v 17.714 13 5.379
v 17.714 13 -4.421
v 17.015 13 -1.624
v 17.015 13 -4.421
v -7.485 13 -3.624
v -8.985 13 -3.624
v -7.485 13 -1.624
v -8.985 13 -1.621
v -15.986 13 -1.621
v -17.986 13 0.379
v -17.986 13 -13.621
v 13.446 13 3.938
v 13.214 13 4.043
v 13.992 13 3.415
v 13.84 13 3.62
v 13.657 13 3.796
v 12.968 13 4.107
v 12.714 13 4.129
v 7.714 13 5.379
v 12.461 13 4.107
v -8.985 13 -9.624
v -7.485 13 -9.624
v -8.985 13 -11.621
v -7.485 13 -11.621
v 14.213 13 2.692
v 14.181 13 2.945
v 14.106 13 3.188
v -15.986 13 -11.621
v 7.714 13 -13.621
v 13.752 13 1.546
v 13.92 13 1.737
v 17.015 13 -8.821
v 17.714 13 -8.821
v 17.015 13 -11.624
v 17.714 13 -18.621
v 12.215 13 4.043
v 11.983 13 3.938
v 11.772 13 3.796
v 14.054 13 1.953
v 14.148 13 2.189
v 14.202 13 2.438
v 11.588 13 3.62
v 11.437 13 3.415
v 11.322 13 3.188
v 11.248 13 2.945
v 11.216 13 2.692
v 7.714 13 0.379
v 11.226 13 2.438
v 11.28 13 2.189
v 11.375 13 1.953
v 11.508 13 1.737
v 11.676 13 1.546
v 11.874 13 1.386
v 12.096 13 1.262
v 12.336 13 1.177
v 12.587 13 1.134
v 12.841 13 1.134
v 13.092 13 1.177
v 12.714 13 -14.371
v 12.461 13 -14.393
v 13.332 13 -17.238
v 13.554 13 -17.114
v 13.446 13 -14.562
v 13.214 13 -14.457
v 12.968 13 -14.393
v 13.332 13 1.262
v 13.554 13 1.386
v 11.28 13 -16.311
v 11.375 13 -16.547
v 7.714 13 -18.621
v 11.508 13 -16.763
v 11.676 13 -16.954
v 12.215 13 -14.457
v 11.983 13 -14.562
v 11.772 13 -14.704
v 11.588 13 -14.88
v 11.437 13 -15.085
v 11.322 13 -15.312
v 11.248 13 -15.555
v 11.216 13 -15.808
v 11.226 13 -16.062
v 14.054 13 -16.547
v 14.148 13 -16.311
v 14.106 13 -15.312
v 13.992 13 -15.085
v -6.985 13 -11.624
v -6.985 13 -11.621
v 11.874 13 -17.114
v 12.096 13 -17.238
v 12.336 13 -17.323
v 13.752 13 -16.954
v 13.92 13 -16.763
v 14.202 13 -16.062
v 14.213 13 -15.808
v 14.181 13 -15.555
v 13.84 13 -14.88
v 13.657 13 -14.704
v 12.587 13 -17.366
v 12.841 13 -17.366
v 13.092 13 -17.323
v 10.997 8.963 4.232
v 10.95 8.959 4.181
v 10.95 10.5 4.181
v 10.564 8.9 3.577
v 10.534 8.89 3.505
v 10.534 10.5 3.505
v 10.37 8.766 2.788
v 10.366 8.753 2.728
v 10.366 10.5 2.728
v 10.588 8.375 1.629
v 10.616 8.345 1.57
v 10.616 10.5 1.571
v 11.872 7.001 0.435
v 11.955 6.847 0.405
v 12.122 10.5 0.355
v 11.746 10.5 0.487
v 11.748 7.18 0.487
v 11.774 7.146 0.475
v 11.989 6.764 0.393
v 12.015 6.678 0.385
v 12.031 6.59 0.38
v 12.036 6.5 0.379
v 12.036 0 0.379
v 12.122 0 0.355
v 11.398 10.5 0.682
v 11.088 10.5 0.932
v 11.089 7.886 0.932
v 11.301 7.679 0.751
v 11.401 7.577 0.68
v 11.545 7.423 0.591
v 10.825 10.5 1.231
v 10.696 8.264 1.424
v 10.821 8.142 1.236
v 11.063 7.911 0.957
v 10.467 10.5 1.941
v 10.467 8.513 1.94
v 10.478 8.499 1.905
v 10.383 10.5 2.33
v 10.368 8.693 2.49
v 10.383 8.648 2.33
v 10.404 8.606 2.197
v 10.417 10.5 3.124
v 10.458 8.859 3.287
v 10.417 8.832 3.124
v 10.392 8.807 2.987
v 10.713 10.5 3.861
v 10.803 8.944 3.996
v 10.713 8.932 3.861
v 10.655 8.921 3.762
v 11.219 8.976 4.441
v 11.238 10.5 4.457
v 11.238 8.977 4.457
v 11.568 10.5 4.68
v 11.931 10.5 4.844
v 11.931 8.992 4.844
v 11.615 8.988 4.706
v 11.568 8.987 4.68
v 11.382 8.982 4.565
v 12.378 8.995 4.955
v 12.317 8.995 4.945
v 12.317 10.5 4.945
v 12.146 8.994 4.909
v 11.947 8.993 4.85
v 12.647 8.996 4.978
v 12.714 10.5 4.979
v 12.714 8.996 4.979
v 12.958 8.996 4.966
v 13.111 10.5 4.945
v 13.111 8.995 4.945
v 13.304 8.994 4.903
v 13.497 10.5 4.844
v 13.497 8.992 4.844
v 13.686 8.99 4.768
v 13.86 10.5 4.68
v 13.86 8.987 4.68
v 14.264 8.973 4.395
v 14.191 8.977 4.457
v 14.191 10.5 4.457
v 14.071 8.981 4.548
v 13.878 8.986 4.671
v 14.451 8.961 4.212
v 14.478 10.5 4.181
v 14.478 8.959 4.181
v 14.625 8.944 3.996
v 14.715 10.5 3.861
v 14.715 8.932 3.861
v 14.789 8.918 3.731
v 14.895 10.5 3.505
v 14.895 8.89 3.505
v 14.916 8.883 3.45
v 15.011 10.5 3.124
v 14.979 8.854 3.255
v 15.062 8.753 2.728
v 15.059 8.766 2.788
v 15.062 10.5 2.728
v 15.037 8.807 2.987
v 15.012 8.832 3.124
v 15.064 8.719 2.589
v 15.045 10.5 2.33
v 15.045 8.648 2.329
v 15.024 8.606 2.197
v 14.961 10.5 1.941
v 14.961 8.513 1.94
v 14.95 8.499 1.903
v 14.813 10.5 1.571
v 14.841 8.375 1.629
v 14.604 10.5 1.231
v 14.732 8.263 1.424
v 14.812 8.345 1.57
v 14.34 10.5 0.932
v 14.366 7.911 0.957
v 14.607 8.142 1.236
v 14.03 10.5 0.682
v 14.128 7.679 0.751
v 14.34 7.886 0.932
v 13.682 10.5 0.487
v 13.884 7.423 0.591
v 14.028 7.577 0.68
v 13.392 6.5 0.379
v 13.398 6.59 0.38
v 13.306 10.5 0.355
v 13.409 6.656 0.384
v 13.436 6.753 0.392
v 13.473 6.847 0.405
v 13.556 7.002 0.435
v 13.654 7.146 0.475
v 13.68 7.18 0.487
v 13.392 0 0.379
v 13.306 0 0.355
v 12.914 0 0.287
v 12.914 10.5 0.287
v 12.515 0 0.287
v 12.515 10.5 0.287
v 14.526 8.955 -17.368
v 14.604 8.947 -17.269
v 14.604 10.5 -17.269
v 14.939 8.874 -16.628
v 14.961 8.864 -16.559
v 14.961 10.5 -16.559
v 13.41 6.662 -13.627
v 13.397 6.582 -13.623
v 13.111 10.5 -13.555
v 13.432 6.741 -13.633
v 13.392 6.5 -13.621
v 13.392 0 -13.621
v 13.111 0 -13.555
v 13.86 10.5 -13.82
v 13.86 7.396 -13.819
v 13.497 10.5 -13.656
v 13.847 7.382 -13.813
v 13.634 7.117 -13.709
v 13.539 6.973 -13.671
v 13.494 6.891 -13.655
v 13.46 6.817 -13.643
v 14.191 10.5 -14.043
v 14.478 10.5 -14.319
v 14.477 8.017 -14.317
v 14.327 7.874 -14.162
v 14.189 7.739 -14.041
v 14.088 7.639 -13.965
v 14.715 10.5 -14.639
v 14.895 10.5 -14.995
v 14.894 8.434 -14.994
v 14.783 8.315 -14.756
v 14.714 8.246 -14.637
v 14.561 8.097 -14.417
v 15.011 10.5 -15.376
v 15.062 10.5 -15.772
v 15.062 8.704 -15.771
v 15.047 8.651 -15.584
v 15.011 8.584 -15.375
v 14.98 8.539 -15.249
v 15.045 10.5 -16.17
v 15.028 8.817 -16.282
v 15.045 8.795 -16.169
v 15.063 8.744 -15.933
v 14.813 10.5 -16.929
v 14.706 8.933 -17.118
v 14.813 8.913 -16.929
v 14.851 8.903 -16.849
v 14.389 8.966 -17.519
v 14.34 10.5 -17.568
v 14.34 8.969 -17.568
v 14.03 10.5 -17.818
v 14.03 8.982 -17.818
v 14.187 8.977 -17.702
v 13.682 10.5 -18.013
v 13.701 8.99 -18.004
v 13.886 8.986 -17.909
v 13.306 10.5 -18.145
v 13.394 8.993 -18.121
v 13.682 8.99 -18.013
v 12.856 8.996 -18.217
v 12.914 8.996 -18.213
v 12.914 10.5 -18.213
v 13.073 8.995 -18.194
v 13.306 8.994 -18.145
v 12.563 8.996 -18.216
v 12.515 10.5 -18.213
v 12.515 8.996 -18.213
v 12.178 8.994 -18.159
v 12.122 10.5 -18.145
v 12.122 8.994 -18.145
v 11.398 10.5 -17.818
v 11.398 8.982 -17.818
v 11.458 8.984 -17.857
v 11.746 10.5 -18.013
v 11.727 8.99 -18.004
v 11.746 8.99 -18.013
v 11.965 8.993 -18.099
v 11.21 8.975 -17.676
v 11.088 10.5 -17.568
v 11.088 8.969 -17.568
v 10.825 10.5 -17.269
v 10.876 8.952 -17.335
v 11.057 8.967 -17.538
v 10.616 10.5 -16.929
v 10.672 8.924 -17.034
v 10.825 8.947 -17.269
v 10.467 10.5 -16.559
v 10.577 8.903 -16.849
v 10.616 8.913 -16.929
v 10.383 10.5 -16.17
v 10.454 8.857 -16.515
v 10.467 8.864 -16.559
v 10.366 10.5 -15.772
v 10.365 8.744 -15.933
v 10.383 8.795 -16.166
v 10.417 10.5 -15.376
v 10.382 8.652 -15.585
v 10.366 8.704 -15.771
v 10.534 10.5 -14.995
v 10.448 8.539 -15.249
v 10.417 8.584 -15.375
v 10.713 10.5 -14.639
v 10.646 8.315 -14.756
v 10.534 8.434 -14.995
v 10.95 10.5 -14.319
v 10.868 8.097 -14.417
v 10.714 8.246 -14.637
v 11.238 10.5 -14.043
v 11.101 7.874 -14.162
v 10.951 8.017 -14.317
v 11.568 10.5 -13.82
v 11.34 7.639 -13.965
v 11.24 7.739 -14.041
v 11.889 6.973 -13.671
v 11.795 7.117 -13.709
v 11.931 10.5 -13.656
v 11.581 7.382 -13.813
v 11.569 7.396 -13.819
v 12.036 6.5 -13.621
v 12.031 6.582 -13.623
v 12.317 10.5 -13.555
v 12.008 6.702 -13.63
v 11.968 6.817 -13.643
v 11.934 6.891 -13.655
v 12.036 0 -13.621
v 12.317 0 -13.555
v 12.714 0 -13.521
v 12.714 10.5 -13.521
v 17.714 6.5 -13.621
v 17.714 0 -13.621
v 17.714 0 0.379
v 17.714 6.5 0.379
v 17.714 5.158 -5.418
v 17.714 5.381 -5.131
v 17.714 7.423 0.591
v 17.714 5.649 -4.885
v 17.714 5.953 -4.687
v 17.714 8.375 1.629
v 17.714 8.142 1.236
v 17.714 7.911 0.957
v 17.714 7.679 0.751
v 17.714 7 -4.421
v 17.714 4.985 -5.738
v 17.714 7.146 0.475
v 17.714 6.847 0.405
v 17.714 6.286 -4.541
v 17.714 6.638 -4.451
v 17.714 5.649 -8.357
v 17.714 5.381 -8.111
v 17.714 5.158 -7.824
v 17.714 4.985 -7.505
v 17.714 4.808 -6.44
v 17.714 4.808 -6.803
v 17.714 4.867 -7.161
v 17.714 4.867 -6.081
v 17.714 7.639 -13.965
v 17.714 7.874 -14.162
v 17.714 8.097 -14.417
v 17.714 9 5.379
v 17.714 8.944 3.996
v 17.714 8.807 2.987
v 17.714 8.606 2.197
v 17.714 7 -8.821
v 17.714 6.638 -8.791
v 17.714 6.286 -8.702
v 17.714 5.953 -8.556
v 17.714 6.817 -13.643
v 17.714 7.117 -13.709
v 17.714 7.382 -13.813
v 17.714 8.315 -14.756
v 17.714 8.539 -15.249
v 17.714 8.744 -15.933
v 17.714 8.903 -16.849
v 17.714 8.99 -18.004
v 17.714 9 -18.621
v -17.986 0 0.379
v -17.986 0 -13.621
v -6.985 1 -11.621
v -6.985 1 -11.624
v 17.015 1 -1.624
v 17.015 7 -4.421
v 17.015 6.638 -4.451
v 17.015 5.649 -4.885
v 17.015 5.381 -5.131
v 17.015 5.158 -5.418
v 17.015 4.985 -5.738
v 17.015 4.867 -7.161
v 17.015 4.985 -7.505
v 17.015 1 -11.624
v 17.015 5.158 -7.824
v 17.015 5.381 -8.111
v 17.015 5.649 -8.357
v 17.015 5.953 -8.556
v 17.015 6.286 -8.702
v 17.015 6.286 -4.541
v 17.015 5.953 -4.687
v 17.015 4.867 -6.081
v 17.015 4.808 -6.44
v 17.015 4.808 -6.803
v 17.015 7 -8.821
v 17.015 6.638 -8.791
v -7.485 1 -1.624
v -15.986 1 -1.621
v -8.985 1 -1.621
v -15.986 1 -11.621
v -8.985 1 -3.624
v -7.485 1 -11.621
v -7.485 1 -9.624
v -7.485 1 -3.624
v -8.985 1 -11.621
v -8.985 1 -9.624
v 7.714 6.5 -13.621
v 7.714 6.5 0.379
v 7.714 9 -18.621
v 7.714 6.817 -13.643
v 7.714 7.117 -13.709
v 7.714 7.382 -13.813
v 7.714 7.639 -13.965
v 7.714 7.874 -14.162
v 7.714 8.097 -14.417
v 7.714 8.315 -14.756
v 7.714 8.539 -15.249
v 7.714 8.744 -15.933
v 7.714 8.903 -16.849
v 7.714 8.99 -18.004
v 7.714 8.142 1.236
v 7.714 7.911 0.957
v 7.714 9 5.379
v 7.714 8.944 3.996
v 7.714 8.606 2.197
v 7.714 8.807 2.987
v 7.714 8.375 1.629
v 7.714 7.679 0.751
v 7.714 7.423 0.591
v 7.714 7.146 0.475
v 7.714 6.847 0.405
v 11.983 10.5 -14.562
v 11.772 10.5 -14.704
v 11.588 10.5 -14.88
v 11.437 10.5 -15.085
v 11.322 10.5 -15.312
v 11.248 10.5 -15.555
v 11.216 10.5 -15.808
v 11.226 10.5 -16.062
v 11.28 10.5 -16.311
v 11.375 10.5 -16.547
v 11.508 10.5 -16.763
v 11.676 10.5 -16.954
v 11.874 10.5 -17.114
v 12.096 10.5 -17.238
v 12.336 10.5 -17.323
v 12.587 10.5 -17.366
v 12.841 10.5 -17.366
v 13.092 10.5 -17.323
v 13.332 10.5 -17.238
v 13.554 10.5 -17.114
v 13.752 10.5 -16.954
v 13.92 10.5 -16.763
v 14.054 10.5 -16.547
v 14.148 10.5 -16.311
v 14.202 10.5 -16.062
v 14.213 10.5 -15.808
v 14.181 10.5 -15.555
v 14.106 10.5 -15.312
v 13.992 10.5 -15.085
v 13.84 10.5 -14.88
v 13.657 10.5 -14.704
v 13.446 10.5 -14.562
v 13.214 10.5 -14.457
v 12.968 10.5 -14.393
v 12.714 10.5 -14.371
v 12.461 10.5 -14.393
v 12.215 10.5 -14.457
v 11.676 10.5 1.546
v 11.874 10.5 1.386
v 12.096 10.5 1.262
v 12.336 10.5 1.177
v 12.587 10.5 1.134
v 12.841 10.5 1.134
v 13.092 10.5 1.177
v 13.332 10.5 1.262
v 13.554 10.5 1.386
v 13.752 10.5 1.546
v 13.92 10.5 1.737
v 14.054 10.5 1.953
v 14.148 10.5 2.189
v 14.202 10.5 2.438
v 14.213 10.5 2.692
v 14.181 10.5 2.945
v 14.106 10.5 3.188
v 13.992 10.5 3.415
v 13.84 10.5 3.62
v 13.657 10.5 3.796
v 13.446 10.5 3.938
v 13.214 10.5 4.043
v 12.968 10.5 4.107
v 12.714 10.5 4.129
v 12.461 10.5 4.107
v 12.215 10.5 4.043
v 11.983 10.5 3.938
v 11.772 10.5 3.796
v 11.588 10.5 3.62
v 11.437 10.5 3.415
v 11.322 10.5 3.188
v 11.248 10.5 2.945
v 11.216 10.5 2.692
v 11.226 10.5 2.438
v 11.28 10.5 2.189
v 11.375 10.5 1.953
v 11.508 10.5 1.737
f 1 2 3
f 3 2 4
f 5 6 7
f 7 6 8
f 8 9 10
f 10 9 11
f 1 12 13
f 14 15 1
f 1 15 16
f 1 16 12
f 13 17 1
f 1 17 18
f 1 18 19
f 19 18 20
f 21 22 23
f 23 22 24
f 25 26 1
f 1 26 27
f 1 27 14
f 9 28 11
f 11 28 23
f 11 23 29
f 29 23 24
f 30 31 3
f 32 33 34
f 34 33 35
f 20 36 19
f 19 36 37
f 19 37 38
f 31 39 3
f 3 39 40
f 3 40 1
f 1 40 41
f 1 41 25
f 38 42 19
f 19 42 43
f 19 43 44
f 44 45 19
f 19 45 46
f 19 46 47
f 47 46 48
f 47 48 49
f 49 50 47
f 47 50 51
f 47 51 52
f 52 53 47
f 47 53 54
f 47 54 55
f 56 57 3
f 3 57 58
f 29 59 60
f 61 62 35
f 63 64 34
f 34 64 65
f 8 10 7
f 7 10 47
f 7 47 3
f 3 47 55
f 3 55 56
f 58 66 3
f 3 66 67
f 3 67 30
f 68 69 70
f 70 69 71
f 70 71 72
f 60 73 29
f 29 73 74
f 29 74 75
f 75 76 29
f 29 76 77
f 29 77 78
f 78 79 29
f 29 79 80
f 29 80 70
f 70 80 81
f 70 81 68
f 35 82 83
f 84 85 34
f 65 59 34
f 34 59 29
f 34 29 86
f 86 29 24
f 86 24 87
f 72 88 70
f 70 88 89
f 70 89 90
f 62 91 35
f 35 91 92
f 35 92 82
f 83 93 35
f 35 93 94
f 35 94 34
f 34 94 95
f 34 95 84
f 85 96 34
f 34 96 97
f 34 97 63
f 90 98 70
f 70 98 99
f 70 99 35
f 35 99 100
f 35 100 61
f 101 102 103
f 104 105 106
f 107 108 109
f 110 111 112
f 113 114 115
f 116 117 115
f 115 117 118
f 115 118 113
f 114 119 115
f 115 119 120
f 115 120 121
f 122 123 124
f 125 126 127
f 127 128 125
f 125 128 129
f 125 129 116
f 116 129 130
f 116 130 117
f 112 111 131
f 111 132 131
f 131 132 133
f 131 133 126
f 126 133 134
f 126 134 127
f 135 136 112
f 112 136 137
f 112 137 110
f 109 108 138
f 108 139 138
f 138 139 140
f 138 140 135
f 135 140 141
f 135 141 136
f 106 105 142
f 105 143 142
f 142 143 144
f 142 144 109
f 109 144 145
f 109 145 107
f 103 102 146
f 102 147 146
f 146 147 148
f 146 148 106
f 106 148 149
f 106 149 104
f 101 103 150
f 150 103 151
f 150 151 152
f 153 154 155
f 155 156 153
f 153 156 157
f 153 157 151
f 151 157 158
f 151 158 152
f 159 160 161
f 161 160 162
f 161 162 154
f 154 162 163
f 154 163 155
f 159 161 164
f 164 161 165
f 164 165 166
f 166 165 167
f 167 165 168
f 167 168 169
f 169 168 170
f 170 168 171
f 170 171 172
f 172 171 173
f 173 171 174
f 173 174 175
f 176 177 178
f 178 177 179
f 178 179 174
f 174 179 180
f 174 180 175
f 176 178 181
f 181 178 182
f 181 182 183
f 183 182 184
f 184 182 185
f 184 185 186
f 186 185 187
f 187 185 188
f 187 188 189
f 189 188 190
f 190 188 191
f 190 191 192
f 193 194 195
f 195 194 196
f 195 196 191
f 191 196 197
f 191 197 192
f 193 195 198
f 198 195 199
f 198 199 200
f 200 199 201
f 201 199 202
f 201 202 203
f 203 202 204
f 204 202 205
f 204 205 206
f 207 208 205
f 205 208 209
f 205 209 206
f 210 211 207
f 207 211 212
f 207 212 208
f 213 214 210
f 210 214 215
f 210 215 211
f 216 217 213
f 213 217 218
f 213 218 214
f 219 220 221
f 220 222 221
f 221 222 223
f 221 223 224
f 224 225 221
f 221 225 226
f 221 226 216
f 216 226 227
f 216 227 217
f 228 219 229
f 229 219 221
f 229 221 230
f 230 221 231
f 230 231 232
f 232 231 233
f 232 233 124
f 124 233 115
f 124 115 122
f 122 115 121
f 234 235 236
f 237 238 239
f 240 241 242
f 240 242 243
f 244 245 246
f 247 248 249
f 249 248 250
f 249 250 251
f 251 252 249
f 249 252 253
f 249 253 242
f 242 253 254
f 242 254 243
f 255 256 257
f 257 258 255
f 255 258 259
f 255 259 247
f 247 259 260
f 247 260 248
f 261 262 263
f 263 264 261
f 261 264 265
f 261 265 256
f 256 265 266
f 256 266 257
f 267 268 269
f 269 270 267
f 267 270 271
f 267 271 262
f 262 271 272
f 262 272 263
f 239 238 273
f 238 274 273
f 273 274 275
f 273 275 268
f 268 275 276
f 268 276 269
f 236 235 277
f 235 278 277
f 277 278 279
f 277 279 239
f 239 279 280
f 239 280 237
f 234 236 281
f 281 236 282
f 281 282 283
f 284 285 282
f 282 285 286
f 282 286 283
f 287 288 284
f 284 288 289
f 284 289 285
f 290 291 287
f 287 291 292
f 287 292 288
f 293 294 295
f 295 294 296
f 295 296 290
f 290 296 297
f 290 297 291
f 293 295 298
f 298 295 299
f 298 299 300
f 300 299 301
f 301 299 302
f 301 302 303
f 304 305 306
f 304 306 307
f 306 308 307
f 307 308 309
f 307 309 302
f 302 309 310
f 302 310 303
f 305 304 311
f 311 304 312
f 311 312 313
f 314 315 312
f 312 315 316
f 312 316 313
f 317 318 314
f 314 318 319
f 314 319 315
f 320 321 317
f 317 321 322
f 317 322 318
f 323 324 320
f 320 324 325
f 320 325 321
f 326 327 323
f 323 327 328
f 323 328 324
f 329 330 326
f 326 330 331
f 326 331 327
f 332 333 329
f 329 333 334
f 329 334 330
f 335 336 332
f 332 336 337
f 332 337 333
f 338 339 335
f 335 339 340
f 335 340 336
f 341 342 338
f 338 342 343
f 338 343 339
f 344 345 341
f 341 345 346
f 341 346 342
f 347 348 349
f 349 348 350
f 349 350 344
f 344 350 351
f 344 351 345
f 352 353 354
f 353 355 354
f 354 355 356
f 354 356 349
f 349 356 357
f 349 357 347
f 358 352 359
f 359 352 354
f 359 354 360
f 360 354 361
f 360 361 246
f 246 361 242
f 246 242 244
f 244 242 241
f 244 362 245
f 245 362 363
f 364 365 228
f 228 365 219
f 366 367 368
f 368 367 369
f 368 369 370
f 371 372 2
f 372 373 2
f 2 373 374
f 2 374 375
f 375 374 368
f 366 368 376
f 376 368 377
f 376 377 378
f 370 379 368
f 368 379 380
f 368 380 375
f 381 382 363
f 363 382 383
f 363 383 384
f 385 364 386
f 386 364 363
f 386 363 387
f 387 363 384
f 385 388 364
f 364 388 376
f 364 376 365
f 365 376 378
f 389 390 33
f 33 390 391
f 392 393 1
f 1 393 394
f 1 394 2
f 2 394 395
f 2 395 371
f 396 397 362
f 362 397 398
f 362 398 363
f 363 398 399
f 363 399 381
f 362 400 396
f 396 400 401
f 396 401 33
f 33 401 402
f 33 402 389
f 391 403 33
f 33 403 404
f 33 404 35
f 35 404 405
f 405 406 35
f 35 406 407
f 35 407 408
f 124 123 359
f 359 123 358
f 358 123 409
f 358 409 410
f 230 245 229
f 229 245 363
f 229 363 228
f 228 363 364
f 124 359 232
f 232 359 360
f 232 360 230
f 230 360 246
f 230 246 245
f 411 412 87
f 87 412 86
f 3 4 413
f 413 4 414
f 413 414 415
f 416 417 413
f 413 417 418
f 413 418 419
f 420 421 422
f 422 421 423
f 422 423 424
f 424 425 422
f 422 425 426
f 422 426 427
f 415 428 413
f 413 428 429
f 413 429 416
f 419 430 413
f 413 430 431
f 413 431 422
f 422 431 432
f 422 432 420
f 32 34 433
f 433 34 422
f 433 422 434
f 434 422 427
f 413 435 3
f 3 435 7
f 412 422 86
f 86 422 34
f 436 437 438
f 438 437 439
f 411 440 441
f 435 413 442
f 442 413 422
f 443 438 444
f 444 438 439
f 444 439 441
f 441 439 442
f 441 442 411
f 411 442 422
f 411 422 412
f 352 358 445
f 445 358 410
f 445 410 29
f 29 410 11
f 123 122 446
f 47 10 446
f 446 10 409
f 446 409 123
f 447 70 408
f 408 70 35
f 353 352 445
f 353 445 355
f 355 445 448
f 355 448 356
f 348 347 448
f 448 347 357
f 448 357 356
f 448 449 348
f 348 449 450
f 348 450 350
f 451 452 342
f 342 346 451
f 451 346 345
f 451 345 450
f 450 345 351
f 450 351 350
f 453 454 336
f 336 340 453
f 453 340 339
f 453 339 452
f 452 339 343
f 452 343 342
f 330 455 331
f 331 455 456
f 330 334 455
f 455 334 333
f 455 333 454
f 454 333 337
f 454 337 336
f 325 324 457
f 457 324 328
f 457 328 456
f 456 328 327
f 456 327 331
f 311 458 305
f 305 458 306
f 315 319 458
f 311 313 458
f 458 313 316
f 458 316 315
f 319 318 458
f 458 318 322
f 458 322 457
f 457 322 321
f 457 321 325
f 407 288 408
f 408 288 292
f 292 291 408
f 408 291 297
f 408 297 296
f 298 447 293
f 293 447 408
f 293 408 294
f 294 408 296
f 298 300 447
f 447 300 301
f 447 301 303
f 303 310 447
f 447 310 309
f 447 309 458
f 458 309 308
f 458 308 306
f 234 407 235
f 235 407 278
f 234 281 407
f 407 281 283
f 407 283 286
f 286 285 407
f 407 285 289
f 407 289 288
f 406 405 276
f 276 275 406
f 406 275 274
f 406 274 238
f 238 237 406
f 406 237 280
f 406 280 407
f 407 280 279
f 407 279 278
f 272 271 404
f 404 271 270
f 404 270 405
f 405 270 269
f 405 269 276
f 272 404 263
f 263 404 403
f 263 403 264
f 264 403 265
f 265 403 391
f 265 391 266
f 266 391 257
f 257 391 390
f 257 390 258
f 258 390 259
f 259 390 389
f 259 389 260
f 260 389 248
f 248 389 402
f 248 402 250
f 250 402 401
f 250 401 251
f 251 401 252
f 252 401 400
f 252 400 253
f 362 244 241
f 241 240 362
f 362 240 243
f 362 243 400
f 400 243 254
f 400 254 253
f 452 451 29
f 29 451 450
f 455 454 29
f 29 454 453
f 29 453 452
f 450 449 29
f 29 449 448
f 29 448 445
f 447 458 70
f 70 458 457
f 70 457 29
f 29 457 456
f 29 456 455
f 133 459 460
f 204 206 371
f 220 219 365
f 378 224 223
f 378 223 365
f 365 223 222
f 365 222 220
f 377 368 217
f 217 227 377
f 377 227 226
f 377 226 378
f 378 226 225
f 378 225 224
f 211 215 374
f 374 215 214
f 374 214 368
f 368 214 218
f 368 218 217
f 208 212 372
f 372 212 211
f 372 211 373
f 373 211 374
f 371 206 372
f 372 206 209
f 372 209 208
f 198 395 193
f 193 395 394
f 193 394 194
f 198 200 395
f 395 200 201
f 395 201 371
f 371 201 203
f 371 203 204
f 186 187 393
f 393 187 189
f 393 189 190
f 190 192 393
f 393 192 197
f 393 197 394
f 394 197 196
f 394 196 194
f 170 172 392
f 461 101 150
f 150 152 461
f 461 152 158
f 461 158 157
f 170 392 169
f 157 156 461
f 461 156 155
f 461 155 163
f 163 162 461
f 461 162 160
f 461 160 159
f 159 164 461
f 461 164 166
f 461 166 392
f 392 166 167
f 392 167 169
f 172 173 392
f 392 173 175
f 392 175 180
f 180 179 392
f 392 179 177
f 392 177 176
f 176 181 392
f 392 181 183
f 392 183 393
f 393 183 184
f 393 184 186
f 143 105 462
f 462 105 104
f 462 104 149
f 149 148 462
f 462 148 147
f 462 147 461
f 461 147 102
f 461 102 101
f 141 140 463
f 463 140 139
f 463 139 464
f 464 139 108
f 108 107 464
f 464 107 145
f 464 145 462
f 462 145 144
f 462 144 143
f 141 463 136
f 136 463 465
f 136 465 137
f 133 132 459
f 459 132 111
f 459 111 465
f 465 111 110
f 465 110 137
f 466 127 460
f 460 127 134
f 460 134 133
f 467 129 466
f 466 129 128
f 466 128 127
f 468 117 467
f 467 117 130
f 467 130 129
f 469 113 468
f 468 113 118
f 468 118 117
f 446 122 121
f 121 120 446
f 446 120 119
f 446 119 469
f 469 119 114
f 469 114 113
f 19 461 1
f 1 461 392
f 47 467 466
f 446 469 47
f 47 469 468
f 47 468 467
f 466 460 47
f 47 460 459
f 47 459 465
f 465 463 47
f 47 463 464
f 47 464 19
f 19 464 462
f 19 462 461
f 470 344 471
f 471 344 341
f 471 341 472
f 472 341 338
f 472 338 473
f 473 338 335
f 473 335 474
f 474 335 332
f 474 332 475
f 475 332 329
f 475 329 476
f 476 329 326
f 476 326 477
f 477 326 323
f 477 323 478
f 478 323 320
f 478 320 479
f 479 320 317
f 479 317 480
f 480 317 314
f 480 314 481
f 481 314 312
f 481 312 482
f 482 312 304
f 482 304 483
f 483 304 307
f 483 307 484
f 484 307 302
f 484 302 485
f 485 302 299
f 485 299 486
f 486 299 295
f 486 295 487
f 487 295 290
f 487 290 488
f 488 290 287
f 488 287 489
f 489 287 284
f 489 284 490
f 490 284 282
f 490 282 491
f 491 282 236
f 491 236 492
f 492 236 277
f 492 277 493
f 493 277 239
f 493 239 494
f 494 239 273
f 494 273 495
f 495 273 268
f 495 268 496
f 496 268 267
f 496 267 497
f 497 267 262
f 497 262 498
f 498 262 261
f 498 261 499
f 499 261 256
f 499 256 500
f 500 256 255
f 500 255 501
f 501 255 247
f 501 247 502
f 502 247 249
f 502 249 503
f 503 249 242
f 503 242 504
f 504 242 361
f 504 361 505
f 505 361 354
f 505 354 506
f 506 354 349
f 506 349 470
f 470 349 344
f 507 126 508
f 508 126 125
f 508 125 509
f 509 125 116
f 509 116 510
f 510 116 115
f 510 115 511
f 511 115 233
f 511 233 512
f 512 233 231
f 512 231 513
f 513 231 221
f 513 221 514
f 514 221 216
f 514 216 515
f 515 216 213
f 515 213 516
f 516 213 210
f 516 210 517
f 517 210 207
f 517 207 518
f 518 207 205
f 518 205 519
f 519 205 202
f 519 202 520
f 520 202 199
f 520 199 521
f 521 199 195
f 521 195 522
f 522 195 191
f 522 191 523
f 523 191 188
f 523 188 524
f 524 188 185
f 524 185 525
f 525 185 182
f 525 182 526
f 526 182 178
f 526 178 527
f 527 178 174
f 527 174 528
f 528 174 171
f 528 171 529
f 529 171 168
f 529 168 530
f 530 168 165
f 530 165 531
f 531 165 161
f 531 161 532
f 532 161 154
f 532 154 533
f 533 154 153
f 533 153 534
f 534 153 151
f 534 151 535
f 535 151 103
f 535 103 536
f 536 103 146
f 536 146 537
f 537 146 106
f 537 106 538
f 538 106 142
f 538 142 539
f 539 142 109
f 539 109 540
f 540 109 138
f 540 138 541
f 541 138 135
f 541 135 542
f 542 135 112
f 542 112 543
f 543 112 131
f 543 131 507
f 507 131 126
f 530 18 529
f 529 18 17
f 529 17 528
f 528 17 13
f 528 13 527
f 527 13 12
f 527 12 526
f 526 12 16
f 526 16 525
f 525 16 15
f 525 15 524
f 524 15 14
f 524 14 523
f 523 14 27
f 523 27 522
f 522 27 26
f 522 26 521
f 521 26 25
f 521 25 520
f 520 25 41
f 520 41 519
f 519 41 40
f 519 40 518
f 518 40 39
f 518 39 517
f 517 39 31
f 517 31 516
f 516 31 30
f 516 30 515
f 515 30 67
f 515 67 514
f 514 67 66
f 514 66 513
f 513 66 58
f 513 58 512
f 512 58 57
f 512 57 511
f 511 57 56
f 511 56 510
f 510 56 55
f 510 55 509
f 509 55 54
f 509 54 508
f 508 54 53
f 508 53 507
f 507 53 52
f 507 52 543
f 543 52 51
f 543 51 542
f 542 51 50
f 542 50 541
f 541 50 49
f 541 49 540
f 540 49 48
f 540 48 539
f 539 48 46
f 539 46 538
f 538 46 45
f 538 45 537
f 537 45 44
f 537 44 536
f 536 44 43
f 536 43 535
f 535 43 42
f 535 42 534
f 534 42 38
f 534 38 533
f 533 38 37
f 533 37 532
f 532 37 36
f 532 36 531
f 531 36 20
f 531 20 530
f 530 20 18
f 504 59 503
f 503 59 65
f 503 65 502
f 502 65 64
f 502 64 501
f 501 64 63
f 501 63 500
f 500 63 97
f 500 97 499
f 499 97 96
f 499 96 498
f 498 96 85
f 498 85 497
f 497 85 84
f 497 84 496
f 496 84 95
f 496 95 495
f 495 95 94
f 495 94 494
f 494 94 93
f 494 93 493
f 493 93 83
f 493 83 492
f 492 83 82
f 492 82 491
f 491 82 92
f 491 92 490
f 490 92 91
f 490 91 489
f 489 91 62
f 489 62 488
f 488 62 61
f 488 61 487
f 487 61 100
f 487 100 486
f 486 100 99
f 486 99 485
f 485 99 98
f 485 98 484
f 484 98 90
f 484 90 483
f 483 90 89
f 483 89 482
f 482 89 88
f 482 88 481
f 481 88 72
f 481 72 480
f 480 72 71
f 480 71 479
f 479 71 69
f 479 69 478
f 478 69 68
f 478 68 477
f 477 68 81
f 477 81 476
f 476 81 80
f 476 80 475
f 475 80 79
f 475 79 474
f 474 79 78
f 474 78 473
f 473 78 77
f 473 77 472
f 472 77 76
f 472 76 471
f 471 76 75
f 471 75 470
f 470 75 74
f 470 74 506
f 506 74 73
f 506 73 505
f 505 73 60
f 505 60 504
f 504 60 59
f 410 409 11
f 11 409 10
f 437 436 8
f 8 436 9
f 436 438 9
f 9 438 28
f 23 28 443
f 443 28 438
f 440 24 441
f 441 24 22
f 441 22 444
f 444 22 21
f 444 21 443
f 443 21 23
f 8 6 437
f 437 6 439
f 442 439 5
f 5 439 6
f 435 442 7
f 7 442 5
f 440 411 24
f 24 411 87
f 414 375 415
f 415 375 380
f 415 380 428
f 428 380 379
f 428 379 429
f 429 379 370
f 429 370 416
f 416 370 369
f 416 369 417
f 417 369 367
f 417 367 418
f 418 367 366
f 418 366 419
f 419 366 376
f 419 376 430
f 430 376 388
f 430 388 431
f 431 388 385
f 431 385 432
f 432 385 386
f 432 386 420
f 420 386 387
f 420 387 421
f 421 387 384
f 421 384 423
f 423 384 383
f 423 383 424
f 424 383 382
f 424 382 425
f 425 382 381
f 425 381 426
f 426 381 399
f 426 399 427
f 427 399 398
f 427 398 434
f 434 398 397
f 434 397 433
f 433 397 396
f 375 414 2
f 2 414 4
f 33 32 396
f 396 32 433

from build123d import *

# Parameters (mm, degrees)
SKETCH1_W            = 25.7
SKETCH1_H            = 16
BOSS_EXTRUDE5_DEPTH  = 13
SKETCH3_W            = 24
SKETCH3_H            = 10
CUT_EXTRUDE1_DEPTH   = 12
SKETCH6_W            = 6
SKETCH6_H            = 12
CUT_EXTRUDE6_DEPTH   = 12
SKETCH12_W           = 25.7
SKETCH12_H           = 13
CUT_EXTRUDE9_DEPTH   = 1
SKETCH13_W           = 25.7
SKETCH13_H           = 13
CUT_EXTRUDE10_DEPTH  = 1
SKETCH14_W           = 25.7
SKETCH14_H           = 0.24
CUT_EXTRUDE11_DEPTH  = 26.979383268
SKETCH15_W           = 25.7
SKETCH15_H           = 0.24
BOSS_EXTRUDE6_DEPTH  = 13
BOSS_EXTRUDE8_DEPTH  = 10
SKETCH19_R           = 2.35
CUT_EXTRUDE12_DEPTH  = 29.801827185
SKETCH20_R           = 2.4
SKETCH20_R_2         = 2.45
BOSS_EXTRUDE9_DEPTH  = 2.5
SKETCH21_R           = 1.5
CUT_EXTRUDE13_DEPTH  = 29.801827185
SKETCH22_W           = 10
SKETCH22_H           = 14
BOSS_EXTRUDE11_DEPTH = 13
SKETCH25_W           = 8
SKETCH25_H           = 10
CUT_EXTRUDE17_DEPTH  = 12
SKETCH26_W           = 1.5
SKETCH26_H           = 2
BOSS_EXTRUDE12_DEPTH = 13
SKETCH27_W           = 0.5
SKETCH27_H           = 1.76
SKETCH27_W_2         = 0.500587584
SKETCH27_H_2         = 2
CUT_EXTRUDE18_DEPTH  = 12
SKETCH28_W           = 1.277363426
SKETCH28_H           = 0.860849325
BOSS_EXTRUDE13_DEPTH = 12
CUT_EXTRUDE20_DEPTH  = 12


with BuildPart() as part:
    # Sketch1 → Boss-Extrude5 (new body)
    with BuildSketch(Plane(origin=(0, 0, 0), x_dir=(1, 0, 0), z_dir=(0, 1, 0))):
        with Locations((4.864219333, 6.861269364)):
            Rectangle(SKETCH1_W, SKETCH1_H)
    extrude(amount=BOSS_EXTRUDE5_DEPTH)

    # Sketch3 → Cut-Extrude1 (cut)
    with BuildSketch(Plane(origin=(0, 13, 0), x_dir=(1, 0, 0), z_dir=(0, 1, 0))):
        with Locations((5.015394501, 6.623768503)):
            Rectangle(SKETCH3_W, SKETCH3_H)
    extrude(amount=-CUT_EXTRUDE1_DEPTH, mode=Mode.SUBTRACT)

    # Sketch6 → Cut-Extrude6 (cut)
    with BuildSketch(Plane.ZY.offset(7.985780667)):
        with Locations((-6.861269364, 7)):
            Rectangle(SKETCH6_W, SKETCH6_H)
    extrude(amount=-CUT_EXTRUDE6_DEPTH, mode=Mode.SUBTRACT)

    # Sketch12 → Cut-Extrude9 (cut)
    with BuildSketch(Plane(origin=(0, 0, -14.861269364), x_dir=(-1, 0, 0), z_dir=(0, 0, -1))):
        with Locations((-4.864219333, 6.5)):
            Rectangle(SKETCH12_W, SKETCH12_H)
    extrude(amount=-CUT_EXTRUDE9_DEPTH, mode=Mode.SUBTRACT)

    # Sketch13 → Cut-Extrude10 (cut)
    with BuildSketch(Plane.XY.offset(1.138730636)):
        with Locations((4.864219333, 6.5)):
            Rectangle(SKETCH13_W, SKETCH13_H)
    extrude(amount=-CUT_EXTRUDE10_DEPTH, mode=Mode.SUBTRACT)

    # Sketch14 → Cut-Extrude11 (cut, through all)
    with BuildSketch(Plane(origin=(0, 13, 0), x_dir=(1, 0, 0), z_dir=(0, 1, 0))):
        with Locations((4.864219333, 13.741269364)):
            Rectangle(SKETCH14_W, SKETCH14_H)
    extrude(amount=-CUT_EXTRUDE11_DEPTH, mode=Mode.SUBTRACT)

    # Sketch15 → Boss-Extrude6 (add)
    with BuildSketch(Plane(origin=(0, 13, 0), x_dir=(1, 0, 0), z_dir=(0, 1, 0))):
        with Locations((4.864219333, -0.258730636)):
            Rectangle(SKETCH15_W, SKETCH15_H)
    extrude(amount=-BOSS_EXTRUDE6_DEPTH)

    # Sketch17 → Boss-Extrude8 (add)
    with BuildSketch(Plane(origin=(17.714219333, 0, 0), x_dir=(0, 0, -1), z_dir=(1, 0, 0))):
        with BuildLine():
            Line((13.621269364, 13), (18.621269364, 13))
            Line((18.621269364, 13), (18.621269364, 9))
            add(Edge.make_bspline(
                [(18.621269364, 9), (13.621269364, 9), (13.621269364, 6.5)],
                knots=[0, 0, 0, 1, 1, 1], degree=2))
            Line((13.621269364, 6.5), (13.621269364, 13))
        make_face()
        with BuildLine():
            Line((-0.378730636, 13), (-5.378730636, 13))
            Line((-5.378730636, 13), (-5.378730636, 9))
            add(Edge.make_bspline(
                [(-5.378730636, 9), (-0.378730636, 9), (-0.378730636, 6.5)],
                knots=[0, 0, 0, 1, 1, 1], degree=2))
            Line((-0.378730636, 6.5), (-0.378730636, 13))
        make_face()
    extrude(amount=-BOSS_EXTRUDE8_DEPTH)

    # Sketch19 → Cut-Extrude12 (cut, through all)
    with BuildSketch(Plane(origin=(0, 13, 0), x_dir=(1, 0, 0), z_dir=(0, 1, 0))):
        with Locations(Location((12.714219333, 15.871269364, 0), (0, 0, 270))):
            Circle(SKETCH19_R)
        with Locations(Location((12.714219333, -2.628730636, 0), (0, 0, 270))):
            Circle(SKETCH19_R)
    extrude(amount=-CUT_EXTRUDE12_DEPTH, mode=Mode.SUBTRACT)

    # Sketch20 → Boss-Extrude9 (add)
    with BuildSketch(Plane(origin=(0, 13, 0), x_dir=(1, 0, 0), z_dir=(0, 1, 0))):
        with Locations((12.714219333, 15.871269364)):
            Circle(SKETCH20_R)
        with Locations((12.714219333, -2.628730636)):
            Circle(SKETCH20_R_2)
    extrude(amount=-BOSS_EXTRUDE9_DEPTH)

    # Sketch21 → Cut-Extrude13 (cut, through all)
    with BuildSketch(Plane(origin=(0, 13, 0), x_dir=(1, 0, 0), z_dir=(0, 1, 0))):
        with Locations(Location((12.714219333, 15.871269364, 0), (0, 0, 270))):
            Circle(SKETCH21_R)
        with Locations(Location((12.714219333, -2.628730636, 0), (0, 0, 270))):
            Circle(SKETCH21_R)
    extrude(amount=-CUT_EXTRUDE13_DEPTH, mode=Mode.SUBTRACT)

    # Sketch22 → Boss-Extrude11 (add)
    with BuildSketch(Plane(origin=(0, 13, 0), x_dir=(1, 0, 0), z_dir=(0, 1, 0))):
        with Locations((-12.985780667, 6.621269364)):
            Rectangle(SKETCH22_W, SKETCH22_H)
    extrude(amount=-BOSS_EXTRUDE11_DEPTH)

    # Sketch25 → Cut-Extrude17 (cut)
    with BuildSketch(Plane(origin=(0, 13, 0), x_dir=(1, 0, 0), z_dir=(0, 1, 0))):
        with Locations((-11.985780667, 6.621269364)):
            Rectangle(SKETCH25_W, SKETCH25_H)
    extrude(amount=-CUT_EXTRUDE17_DEPTH, mode=Mode.SUBTRACT)

    # Sketch26 → Boss-Extrude12 (add)
    with BuildSketch(Plane(origin=(0, 13, 0), x_dir=(1, 0, 0), z_dir=(0, 1, 0))):
        with Locations((-8.234605499, 2.623768503)):
            Rectangle(SKETCH26_W, SKETCH26_H)
        with Locations((-8.234605499, 10.623768503)):
            Rectangle(SKETCH26_W, SKETCH26_H)
    extrude(amount=-BOSS_EXTRUDE12_DEPTH)

    # Sketch27 → Cut-Extrude18 (cut)
    with BuildSketch(Plane(origin=(0, 13, 0), x_dir=(1, 0, 0), z_dir=(0, 1, 0))):
        with Locations((-7.234605499, 10.741269364)):
            Rectangle(SKETCH27_W, SKETCH27_H)
        Polygon((-7.985780667, 3.861269364), (-7.985780667, 3.623768503), (-7.485193083, 3.623768503), (-6.984605499, 3.623768503), (-6.984605499, 3.861269364), align=None)
        with Locations((-7.234899291, 2.623768503)):
            Rectangle(SKETCH27_W_2, SKETCH27_H_2)
    extrude(amount=-CUT_EXTRUDE18_DEPTH, mode=Mode.SUBTRACT)

    # Sketch28 → Boss-Extrude13 (add)
    with BuildSketch(Plane(origin=(0, 13, 0), x_dir=(1, 0, 0), z_dir=(0, 1, 0))):
        with Locations((-8.345923786, 1.388186548)):
            Rectangle(SKETCH28_W, SKETCH28_H)
    extrude(amount=-BOSS_EXTRUDE13_DEPTH)

    # Sketch35 → Cut-Extrude20 (cut)
    with BuildSketch(Plane(origin=(17.714219333, 0, 0), x_dir=(0, 0, -1), z_dir=(1, 0, 0))):
        with BuildLine():
            Line((4.421384975, 7), (4.421384975, 13))
            Line((4.421384975, 13), (8.821153753, 13))
            Line((8.821153753, 13), (8.821153753, 7))
            ThreePointArc((8.821153753, 7), (6.621269364, 4.800115611), (4.421384975, 7))
        make_face()
    extrude(amount=-CUT_EXTRUDE20_DEPTH, mode=Mode.SUBTRACT)


solid = part.part
